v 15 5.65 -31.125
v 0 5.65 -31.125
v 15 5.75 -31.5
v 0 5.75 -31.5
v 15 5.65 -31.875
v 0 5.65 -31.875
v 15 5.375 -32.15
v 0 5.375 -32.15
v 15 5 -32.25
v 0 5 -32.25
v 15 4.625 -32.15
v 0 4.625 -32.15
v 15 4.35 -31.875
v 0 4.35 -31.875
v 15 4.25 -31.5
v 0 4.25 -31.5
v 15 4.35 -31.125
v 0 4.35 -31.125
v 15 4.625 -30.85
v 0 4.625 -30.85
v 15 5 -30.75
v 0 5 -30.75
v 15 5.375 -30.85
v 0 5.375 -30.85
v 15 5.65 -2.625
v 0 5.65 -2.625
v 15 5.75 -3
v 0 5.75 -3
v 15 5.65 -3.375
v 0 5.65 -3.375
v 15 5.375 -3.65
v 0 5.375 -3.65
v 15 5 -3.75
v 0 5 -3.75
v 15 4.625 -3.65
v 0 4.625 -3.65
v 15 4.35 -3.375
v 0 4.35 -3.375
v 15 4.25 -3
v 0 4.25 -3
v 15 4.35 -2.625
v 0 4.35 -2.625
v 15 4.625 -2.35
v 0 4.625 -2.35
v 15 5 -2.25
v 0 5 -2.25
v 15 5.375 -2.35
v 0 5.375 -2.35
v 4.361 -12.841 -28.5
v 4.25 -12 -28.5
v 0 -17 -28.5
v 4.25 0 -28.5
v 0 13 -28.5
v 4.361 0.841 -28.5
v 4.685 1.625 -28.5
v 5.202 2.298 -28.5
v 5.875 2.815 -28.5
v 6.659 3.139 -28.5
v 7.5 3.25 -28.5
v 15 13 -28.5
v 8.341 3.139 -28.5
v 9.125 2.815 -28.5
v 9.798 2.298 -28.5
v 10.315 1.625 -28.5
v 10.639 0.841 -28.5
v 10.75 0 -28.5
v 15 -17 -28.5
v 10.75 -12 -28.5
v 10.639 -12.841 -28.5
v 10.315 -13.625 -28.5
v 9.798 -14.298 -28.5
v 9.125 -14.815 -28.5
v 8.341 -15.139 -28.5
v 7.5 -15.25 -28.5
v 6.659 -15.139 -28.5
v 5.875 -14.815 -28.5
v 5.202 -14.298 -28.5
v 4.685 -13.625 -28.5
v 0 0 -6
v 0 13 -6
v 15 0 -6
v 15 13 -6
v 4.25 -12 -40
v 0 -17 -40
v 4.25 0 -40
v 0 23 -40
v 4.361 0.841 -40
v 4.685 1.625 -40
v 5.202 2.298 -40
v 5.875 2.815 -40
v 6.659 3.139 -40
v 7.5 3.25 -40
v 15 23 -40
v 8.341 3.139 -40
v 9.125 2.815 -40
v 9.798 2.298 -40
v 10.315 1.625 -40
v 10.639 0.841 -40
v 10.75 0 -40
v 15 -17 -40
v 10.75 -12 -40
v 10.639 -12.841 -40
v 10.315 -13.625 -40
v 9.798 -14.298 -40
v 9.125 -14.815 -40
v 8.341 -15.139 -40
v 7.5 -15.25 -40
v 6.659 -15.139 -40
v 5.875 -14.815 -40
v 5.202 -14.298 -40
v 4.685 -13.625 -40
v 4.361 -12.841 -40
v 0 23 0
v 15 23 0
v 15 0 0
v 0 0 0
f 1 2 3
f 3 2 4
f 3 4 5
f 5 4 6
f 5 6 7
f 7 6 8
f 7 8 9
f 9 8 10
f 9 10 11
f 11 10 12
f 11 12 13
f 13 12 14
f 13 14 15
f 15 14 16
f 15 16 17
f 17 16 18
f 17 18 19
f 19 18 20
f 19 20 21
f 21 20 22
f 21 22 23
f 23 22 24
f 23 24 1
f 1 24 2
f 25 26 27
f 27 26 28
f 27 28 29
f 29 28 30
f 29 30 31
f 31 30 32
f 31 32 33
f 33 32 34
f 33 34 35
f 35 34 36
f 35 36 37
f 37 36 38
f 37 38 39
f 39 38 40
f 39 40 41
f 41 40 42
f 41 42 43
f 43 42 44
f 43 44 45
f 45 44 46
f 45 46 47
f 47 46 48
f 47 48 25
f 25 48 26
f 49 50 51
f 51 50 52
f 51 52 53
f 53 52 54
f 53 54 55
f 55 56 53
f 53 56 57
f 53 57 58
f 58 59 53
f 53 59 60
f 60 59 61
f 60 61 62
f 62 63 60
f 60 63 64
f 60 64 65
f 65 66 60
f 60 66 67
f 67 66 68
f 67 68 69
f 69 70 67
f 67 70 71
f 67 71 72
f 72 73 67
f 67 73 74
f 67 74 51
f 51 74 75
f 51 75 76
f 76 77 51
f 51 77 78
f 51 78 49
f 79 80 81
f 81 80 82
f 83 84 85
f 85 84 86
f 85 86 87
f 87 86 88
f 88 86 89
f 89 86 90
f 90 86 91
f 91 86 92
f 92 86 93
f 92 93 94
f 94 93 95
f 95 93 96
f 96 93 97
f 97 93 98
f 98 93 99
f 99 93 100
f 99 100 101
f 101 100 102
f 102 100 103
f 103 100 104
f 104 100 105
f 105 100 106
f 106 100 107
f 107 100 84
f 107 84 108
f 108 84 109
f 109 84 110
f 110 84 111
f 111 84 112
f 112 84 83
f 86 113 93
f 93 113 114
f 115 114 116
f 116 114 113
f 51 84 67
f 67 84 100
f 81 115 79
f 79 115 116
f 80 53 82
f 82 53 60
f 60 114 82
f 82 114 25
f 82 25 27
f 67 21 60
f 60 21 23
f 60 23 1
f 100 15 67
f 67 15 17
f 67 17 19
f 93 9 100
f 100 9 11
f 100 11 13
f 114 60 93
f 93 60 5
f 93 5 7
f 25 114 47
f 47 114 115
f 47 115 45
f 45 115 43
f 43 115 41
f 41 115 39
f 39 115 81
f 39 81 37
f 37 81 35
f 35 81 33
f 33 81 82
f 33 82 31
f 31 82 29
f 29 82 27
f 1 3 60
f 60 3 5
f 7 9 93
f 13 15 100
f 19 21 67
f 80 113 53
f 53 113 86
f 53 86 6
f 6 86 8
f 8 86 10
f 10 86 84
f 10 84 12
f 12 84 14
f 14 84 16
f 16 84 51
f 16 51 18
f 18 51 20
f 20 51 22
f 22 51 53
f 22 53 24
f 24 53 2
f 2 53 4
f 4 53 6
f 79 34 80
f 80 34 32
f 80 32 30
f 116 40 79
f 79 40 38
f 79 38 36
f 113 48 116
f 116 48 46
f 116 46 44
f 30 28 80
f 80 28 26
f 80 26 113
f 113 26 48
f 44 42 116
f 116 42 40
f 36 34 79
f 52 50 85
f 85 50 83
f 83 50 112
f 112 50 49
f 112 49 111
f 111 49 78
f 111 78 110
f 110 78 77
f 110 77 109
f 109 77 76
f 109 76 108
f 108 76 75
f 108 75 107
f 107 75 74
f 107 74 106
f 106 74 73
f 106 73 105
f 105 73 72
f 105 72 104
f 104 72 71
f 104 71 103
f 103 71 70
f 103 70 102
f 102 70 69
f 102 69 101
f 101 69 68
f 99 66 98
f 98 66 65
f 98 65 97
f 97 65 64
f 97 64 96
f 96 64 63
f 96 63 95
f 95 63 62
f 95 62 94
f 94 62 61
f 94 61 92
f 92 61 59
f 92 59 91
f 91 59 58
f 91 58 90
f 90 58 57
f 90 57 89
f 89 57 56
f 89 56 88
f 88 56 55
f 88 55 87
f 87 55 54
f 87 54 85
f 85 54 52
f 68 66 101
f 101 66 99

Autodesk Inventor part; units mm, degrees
ref_plane "YZ Plane" through (0, 0, 0) normal (1, 0, 0) x (0, 1, 0)
ref_plane "XZ Plane" through (0, 0, 0) normal (0, 1, 0) x (-1, 0, 0)
ref_plane "XY Plane" through (0, 0, 0) normal (0, 0, 1) x (1, 0, 0)
sketch "Sketch1" plane through (0, 0, 0) normal (1, 0, 0) x (0, 1, 0)
  line L0 (0, 0) -> (23, 0)
  line L1 (23, 0) -> (23, -40)
  line L2 (0, 0) -> (0, -6)
  line L3 (0, -6) -> (13, -6)
  line L4 (13, -6) -> (13, -28.5)
  line L5 (13, -28.5) -> (-17, -28.5)
  line L6 (23, -40) -> (-17, -40)
  line L7 (-17, -40) -> (-17, -28.5)
  circle A0 centre (5, -3) radius 0.75
  circle A1 centre (5, -31.5) radius 0.75
  point P0 (0, -3)
  dimension "d0" = 40
  dimension "d1" = 13
  dimension "d2" = 6
  dimension "d3" = 22.5
  dimension "d4" = 1.5
  dimension "d5" = 5
  dimension "d7" = 10
  dimension "d9" = 30
  dimension "d10" = 1.5
  dimension "d11" = 3
extrude "Extrusion1" add sketch "Sketch1" along normal blind 15
sketch "Sketch3" plane through (0, -17, -40) normal (0, 0, -1) x (-1, 0, 0)
  line L0 (-7.5, 17) -> (-7.5, 5) construction
  line L1 (-10.75, 17) -> (-10.75, 5)
  line L2 (-4.25, 5) -> (-4.25, 17)
  arc A0 (-4.25, 17) -> (-10.75, 17) centre (-7.5, 17) ccw
  arc A1 (-10.75, 5) -> (-4.25, 5) centre (-7.5, 5) ccw
  line L3 (0, 17) -> (-15, 17) construction
  point P0 (-7.5, 11)
  point P1 (-7.5, 17)
  dimension "d14" = 6.5
  dimension "d15" = 12
extrude "Extrusion2" cut sketch "Sketch3" against normal up to next
properties part number "servo mount"
